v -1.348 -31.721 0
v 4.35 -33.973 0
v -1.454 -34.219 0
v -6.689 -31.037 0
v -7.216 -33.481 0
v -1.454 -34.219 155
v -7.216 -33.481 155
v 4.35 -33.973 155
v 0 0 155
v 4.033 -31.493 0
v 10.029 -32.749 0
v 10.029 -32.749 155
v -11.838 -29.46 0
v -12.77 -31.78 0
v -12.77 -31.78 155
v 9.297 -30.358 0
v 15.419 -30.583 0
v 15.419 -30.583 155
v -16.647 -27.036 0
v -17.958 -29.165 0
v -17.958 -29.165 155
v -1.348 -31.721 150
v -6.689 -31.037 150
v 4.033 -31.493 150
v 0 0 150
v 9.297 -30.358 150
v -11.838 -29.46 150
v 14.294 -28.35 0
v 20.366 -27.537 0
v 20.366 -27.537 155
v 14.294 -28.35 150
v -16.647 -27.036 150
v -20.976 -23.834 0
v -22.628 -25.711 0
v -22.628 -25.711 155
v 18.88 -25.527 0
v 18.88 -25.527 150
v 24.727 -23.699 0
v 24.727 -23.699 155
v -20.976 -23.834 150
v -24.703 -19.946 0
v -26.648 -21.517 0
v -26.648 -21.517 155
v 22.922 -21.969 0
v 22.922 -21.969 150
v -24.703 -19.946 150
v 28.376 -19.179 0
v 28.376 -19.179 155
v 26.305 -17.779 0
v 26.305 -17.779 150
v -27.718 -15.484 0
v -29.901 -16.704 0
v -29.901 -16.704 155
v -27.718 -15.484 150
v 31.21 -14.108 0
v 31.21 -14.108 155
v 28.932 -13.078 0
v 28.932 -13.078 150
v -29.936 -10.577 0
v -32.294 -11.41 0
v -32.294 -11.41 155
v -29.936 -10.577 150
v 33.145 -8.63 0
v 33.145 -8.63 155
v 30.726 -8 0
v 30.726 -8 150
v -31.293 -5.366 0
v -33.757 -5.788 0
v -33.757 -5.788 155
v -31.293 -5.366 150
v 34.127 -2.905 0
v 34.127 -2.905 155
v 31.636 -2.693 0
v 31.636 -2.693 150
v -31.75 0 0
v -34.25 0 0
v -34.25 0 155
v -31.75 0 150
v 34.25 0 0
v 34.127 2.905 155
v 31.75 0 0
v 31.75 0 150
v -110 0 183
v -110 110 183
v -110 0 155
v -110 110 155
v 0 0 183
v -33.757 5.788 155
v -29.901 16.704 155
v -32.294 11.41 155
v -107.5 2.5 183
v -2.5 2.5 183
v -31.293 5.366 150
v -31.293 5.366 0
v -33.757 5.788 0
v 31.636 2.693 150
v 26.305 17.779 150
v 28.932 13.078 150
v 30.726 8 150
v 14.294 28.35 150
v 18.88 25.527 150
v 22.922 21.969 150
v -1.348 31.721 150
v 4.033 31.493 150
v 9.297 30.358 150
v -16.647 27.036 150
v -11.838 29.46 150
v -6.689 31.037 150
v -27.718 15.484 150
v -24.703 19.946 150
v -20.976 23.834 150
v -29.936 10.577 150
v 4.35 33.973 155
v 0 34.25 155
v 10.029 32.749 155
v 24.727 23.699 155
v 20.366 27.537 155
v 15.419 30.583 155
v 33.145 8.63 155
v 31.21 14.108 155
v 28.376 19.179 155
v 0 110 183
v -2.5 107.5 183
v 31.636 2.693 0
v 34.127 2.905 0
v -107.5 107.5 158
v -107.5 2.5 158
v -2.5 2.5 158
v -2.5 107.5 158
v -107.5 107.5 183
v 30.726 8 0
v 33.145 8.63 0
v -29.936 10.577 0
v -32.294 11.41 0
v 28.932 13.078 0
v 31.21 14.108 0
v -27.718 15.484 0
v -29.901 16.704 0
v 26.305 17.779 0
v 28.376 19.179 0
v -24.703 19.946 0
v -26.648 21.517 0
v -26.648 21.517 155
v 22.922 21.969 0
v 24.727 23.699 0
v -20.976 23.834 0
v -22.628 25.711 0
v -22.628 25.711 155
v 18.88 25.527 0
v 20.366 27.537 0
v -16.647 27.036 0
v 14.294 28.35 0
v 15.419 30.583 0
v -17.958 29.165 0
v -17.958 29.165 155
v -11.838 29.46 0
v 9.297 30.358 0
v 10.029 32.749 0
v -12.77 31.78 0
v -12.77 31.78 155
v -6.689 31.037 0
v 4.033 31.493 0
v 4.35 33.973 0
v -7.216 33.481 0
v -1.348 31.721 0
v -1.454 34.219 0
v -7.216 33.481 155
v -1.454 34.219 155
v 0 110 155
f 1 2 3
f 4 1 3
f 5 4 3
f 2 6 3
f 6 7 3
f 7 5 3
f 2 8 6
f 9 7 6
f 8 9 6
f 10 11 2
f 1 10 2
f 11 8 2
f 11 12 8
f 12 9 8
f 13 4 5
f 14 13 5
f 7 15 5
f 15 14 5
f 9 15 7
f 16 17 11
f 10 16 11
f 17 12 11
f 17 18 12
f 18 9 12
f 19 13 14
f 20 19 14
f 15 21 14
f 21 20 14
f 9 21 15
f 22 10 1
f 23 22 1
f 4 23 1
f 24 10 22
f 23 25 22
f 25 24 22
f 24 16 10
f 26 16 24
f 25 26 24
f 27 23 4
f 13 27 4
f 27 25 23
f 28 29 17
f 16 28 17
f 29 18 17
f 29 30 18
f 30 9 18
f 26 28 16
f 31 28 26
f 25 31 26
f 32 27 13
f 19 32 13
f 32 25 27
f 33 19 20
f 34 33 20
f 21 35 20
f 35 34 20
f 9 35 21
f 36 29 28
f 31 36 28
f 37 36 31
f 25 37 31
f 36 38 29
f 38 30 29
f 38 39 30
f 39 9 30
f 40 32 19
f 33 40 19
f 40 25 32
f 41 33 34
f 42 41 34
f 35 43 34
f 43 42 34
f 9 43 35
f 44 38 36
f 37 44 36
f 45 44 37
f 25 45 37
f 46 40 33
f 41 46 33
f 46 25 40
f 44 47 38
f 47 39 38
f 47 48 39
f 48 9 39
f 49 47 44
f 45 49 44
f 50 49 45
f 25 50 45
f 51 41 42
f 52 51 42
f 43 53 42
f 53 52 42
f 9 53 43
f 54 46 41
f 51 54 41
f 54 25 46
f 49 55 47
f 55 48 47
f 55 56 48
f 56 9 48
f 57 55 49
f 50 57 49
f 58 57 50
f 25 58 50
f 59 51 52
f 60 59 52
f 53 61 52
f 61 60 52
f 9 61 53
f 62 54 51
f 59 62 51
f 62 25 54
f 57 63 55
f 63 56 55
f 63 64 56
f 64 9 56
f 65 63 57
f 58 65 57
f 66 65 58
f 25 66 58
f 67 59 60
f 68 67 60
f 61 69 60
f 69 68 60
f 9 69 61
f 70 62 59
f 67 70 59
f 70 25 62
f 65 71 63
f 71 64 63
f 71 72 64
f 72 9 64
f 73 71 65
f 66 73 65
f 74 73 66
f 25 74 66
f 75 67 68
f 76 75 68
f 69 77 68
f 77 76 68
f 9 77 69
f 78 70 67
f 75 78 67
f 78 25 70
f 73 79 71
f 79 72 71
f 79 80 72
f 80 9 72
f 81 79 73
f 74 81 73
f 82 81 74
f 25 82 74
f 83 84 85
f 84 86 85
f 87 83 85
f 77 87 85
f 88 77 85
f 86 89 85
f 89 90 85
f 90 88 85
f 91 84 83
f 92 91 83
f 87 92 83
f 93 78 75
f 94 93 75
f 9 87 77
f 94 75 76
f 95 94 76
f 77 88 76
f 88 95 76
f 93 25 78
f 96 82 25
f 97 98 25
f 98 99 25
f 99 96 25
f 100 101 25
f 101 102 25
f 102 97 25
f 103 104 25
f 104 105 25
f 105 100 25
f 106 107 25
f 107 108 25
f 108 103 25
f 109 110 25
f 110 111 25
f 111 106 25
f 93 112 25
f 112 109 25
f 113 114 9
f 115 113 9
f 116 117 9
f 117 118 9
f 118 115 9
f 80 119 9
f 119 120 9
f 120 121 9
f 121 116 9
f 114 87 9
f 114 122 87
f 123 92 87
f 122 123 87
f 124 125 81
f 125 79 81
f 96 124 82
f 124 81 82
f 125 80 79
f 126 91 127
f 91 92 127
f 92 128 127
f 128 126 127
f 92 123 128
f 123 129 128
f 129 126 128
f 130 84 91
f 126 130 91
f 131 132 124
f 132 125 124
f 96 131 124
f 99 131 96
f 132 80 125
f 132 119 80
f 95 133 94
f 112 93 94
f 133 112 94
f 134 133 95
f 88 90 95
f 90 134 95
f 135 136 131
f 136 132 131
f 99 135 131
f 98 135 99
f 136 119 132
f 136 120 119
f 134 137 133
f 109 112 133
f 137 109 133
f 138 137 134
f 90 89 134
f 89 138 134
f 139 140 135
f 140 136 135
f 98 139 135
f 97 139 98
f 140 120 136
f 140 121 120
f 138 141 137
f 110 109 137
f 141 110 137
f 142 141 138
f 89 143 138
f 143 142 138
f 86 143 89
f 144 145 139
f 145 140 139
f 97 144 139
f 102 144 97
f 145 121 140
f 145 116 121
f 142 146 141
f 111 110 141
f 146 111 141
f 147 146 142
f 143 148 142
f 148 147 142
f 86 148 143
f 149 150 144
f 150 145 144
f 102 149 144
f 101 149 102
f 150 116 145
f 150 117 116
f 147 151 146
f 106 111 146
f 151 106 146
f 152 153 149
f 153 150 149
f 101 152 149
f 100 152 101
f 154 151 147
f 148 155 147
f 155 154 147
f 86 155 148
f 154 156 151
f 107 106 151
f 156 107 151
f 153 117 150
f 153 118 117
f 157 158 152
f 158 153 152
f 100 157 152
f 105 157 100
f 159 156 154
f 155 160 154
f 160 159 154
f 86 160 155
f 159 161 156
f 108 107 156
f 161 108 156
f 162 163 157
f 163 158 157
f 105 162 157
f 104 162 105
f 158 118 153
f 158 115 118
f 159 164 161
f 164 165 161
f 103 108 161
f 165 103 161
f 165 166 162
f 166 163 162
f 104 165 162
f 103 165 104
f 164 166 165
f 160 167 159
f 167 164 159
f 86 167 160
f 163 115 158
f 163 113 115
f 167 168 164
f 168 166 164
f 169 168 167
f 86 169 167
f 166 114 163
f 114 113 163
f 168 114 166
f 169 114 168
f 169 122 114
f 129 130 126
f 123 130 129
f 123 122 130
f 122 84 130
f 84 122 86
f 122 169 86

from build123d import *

# Parameters (mm, degrees)
SKETCH_1_R      = 34.25
SKETCH_1_R_2    = 31.75
EXTRUDE_1_DEPTH = 150
SKETCH_3_R      = 34.25
EXTRUDE_2_DEPTH = 5
SKETCH_4_W      = 110
SKETCH_4_H      = 110
EXTRUDE_3_DEPTH = 3
SKETCH_5_W      = 110
SKETCH_5_H      = 110
SKETCH_5_W_2    = 105
SKETCH_5_H_2    = 105
EXTRUDE_4_DEPTH = 25


with BuildPart() as part:
    # 草圖1 → 填料-伸長1 (new body)
    with BuildSketch(Plane.XY):
        Circle(SKETCH_1_R)
        Circle(SKETCH_1_R_2, mode=Mode.SUBTRACT)
    extrude(amount=EXTRUDE_1_DEPTH)

    # 草圖3 → 填料-伸長2 (add)
    with BuildSketch(Plane.XY.offset(150)):
        Circle(SKETCH_3_R)
    extrude(amount=EXTRUDE_2_DEPTH)

    # 草圖4 → 填料-伸長3 (add)
    with BuildSketch(Plane.XY.offset(155)):
        with Locations((-55, 55)):
            Rectangle(SKETCH_4_W, SKETCH_4_H)
    extrude(amount=EXTRUDE_3_DEPTH)

    # 草圖5 → 填料-伸長4 (add)
    with BuildSketch(Plane.XY.offset(158)):
        with Locations((-55, 55)):
            Rectangle(SKETCH_5_W, SKETCH_5_H)
        with Locations((-55, 55)):
            Rectangle(SKETCH_5_W_2, SKETCH_5_H_2, mode=Mode.SUBTRACT)
    extrude(amount=EXTRUDE_4_DEPTH)


solid = part.part
